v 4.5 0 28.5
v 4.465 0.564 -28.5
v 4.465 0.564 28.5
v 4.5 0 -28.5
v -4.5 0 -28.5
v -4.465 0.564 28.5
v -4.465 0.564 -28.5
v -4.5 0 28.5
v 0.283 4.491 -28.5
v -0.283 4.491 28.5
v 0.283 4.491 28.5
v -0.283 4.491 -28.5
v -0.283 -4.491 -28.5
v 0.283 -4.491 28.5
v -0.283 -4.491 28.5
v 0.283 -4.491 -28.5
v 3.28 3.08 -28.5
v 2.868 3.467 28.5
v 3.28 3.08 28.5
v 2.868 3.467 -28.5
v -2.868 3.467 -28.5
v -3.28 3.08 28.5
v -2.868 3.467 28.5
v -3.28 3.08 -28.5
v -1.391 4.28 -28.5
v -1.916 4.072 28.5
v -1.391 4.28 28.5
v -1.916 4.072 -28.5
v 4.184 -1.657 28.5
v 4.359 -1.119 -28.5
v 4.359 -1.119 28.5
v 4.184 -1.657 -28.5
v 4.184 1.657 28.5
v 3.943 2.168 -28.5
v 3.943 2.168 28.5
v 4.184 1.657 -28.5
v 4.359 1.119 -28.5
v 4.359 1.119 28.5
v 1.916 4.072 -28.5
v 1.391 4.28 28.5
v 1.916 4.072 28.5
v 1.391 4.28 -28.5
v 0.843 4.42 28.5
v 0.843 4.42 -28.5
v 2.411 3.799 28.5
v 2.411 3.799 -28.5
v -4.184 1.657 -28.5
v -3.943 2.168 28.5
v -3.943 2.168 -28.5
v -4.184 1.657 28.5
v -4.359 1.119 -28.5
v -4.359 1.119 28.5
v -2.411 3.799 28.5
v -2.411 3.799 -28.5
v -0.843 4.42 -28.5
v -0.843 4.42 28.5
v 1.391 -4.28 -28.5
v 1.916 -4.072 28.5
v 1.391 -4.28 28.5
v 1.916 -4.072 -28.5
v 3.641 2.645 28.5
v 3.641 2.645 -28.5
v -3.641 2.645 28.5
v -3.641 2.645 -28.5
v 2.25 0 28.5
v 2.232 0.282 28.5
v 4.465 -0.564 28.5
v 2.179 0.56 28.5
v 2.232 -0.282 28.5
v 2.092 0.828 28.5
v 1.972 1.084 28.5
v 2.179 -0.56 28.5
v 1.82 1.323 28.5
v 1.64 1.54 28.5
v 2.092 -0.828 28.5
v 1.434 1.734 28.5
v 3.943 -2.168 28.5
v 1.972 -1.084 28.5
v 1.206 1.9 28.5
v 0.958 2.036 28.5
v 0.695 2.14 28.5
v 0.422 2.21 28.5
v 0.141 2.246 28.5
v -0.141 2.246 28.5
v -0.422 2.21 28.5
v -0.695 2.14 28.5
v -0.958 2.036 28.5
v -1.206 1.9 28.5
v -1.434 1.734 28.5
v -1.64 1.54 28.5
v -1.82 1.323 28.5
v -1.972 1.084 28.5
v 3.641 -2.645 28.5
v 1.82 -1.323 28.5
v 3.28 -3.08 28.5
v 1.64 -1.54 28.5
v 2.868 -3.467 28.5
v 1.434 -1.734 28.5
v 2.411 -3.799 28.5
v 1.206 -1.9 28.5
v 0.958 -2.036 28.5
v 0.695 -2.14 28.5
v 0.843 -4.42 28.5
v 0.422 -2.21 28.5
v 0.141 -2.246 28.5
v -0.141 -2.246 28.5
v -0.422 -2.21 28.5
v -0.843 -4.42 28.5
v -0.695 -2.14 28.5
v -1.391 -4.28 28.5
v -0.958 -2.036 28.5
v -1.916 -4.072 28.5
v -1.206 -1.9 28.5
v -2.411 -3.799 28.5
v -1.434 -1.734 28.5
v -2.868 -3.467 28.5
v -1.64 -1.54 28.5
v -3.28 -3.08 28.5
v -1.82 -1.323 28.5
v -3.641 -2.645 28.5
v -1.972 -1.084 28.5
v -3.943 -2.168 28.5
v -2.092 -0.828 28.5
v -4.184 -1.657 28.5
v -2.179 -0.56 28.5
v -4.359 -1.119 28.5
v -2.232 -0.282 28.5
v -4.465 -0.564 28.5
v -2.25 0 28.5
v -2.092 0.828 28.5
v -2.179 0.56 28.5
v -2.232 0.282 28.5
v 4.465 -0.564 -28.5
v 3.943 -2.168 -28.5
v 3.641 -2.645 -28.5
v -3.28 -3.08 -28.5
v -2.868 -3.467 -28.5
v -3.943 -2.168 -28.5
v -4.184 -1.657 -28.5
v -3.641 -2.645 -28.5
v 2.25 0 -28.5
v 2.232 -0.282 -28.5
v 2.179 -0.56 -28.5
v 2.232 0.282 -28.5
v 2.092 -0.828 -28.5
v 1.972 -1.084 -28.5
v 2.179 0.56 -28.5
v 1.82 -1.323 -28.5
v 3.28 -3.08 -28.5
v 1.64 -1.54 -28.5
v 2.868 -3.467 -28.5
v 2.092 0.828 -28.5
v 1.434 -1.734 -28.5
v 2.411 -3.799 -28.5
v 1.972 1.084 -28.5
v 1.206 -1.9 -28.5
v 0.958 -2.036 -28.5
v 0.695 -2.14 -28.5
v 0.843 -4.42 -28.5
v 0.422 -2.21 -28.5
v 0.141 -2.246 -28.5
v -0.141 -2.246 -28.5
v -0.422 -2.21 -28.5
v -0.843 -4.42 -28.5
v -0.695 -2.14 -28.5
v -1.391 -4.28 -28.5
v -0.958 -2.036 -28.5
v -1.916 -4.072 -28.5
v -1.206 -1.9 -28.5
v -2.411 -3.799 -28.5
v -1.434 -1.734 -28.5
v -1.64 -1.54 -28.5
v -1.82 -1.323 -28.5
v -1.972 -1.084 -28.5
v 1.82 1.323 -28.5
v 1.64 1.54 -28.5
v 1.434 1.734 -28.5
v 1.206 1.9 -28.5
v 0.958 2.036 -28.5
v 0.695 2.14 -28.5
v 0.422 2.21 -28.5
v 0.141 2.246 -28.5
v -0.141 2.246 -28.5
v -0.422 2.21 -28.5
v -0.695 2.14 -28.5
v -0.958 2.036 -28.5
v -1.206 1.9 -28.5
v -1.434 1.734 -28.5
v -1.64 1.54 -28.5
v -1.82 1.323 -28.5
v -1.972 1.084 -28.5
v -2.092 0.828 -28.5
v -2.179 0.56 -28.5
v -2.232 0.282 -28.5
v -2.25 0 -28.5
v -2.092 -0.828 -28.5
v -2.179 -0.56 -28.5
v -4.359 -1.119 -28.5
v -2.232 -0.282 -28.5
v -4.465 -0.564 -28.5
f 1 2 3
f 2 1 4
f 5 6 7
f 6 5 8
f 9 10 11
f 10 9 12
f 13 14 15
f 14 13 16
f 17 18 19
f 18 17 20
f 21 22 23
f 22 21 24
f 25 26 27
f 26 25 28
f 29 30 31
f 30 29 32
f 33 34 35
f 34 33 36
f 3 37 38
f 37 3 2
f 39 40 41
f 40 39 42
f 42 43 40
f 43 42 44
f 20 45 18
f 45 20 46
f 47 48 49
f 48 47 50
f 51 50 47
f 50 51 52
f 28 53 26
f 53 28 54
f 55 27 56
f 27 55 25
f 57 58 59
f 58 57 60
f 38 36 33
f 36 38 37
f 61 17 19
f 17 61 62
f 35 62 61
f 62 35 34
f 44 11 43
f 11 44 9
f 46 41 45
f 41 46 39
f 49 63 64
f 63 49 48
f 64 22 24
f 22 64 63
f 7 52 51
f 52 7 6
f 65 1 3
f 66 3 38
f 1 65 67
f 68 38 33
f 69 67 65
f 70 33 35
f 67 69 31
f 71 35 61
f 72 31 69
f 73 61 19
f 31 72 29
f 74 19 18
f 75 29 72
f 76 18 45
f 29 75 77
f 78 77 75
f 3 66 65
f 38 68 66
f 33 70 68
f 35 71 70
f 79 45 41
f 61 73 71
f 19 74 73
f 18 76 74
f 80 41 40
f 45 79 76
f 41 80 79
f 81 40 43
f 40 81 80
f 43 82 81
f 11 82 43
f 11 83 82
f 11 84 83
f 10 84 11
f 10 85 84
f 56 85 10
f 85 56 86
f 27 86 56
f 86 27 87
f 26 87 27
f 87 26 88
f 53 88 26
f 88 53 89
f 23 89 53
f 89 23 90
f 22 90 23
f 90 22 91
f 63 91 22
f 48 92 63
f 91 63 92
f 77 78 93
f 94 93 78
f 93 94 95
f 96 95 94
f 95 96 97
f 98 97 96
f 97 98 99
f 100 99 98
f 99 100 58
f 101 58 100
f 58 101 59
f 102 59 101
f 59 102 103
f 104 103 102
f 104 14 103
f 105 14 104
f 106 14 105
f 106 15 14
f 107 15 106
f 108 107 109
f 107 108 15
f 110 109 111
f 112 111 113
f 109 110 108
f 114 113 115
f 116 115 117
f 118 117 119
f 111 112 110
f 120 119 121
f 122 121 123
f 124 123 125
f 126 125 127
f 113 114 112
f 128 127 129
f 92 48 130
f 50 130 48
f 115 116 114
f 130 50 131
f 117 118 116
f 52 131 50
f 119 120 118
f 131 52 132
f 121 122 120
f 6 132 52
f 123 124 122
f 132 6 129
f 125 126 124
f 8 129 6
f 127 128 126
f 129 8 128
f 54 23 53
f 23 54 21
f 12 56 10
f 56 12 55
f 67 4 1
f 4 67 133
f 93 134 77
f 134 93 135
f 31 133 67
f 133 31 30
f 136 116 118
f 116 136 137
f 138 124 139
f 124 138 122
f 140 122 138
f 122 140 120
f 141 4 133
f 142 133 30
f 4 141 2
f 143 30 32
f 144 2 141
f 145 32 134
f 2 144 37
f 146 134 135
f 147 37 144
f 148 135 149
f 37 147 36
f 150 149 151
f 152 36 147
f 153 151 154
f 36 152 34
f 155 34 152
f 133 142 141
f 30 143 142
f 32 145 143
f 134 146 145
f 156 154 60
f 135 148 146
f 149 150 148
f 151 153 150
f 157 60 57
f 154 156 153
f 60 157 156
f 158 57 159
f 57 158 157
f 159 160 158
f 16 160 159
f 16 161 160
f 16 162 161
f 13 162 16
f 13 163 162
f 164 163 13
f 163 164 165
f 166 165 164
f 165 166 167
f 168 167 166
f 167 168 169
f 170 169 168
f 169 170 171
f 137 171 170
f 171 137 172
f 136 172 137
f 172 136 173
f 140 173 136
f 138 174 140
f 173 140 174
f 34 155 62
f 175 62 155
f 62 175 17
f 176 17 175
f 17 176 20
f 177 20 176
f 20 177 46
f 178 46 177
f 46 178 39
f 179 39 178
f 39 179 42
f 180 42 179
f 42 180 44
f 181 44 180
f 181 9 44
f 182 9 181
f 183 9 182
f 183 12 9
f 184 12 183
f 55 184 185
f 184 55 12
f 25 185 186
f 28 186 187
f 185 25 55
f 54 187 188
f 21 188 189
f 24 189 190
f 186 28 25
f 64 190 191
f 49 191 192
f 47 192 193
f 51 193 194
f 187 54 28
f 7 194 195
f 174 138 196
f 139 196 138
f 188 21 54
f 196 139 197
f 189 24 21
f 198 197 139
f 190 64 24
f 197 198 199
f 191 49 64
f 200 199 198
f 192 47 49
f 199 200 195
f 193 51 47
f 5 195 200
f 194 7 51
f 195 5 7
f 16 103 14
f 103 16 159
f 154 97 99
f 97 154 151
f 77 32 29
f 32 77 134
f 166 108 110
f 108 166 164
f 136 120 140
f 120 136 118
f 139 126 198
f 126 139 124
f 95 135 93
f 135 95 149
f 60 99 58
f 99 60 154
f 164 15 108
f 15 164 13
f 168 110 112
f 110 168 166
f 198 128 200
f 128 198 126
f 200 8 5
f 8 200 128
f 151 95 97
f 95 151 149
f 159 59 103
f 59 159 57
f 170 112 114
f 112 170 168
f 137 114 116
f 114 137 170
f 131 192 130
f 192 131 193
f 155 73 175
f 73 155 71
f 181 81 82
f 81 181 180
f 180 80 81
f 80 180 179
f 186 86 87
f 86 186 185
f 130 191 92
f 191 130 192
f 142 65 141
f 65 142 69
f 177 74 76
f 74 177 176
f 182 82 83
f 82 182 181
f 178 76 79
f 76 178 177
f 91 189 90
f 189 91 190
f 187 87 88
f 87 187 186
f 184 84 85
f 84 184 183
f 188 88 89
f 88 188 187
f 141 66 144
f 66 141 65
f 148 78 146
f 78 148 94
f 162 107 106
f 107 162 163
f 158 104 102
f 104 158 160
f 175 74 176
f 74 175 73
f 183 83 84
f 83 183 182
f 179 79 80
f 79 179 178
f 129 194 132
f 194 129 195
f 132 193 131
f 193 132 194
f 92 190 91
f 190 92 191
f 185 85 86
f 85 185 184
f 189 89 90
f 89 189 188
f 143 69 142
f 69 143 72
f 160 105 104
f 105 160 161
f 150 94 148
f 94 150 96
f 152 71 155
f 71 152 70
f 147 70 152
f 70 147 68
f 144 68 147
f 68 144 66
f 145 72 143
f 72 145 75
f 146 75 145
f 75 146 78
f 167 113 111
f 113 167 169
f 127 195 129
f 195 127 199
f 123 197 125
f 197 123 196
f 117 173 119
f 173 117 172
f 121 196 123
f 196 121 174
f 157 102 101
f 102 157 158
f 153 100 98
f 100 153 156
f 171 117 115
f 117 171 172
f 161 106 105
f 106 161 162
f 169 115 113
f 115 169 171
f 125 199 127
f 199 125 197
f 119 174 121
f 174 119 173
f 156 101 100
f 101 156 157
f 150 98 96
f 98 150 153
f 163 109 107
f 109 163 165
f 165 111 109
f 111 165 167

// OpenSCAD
$fn = 50;


difference() {
	union() {
		translate(v = [0, 0, -28.5000000000]) {
			cylinder(h = 57, r = 4.5000000000);
		}
	}
	union() {
		translate(v = [0, 0, -100.0000000000]) {
			cylinder(h = 200, r = 2.2500000000);
		}
	}
}
